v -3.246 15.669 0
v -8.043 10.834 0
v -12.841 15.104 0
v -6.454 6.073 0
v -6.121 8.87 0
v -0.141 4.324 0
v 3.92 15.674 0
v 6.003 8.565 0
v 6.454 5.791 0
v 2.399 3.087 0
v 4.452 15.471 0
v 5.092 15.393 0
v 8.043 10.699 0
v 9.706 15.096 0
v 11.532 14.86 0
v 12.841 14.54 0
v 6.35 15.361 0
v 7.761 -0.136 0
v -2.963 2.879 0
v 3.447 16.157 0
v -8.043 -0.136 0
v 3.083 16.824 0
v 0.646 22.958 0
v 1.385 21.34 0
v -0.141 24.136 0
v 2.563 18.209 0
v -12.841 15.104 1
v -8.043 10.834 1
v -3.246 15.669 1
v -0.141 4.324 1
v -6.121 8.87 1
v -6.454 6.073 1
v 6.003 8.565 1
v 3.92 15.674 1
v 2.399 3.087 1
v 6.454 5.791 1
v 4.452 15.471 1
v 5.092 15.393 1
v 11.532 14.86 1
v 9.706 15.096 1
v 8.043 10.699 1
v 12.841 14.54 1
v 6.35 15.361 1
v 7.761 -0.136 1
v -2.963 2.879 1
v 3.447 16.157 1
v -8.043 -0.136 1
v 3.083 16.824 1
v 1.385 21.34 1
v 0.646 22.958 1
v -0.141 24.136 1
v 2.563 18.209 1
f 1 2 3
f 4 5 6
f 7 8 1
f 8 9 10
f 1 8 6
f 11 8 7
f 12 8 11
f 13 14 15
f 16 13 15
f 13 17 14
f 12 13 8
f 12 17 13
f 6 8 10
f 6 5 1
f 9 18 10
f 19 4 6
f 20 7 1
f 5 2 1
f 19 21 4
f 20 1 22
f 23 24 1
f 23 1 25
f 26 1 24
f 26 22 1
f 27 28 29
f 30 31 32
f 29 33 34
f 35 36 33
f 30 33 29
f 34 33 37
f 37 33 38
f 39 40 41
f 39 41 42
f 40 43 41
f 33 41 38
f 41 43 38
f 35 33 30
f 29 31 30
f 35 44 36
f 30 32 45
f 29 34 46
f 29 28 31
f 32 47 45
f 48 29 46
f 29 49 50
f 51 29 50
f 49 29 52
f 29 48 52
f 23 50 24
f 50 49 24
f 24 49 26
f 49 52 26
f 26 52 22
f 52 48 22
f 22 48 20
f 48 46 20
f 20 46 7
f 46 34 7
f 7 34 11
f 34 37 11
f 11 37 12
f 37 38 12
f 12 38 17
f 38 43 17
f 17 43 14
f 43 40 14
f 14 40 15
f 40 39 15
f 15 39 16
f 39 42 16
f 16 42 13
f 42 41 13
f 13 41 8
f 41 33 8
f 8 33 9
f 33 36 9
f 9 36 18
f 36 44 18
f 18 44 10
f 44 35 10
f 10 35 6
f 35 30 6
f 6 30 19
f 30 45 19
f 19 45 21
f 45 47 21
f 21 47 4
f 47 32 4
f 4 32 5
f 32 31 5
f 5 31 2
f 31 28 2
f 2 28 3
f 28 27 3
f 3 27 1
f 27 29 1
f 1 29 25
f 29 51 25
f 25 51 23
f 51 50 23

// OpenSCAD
// Module names are of the form poly_<inkscape-path-id>().  As a result,
// you can associate a polygon in this OpenSCAD program with the corresponding
// SVG element in the Inkscape document by looking for the XML element with
// the attribute id="inkscape-path-id".

translate ([0, 12, 0])
star(1);

module star(h)
{
  scale([25.4/90, -25.4/90, 1]) union()
  {
    linear_extrude(height=h)
      polygon([[9.080000,-22.000000],[10.922500,-17.093750],[12.213125,-14.728281],[13.890000,-13.020000],[15.773906,-12.298125],[18.041250,-12.022500],[22.500000,-11.910000],[34.390000,-10.968750],[40.862812,-10.133906],[45.500000,-9.000000],[28.500000,4.610000],[21.270000,12.170000],[22.870000,22.000000],[27.500000,43.000000],[8.500000,31.580000],[-0.500000,27.200000],[-10.500000,32.320000],[-28.500000,43.000000],[-22.870000,21.000000],[-21.690000,11.090000],[-28.500000,4.130000],[-45.500000,-11.000000],[-11.500000,-13.000000],[-0.500000,-43.000000],[2.289219,-38.828594],[4.908750,-33.096250],[9.080000,-22.000000]]);
  }
}
